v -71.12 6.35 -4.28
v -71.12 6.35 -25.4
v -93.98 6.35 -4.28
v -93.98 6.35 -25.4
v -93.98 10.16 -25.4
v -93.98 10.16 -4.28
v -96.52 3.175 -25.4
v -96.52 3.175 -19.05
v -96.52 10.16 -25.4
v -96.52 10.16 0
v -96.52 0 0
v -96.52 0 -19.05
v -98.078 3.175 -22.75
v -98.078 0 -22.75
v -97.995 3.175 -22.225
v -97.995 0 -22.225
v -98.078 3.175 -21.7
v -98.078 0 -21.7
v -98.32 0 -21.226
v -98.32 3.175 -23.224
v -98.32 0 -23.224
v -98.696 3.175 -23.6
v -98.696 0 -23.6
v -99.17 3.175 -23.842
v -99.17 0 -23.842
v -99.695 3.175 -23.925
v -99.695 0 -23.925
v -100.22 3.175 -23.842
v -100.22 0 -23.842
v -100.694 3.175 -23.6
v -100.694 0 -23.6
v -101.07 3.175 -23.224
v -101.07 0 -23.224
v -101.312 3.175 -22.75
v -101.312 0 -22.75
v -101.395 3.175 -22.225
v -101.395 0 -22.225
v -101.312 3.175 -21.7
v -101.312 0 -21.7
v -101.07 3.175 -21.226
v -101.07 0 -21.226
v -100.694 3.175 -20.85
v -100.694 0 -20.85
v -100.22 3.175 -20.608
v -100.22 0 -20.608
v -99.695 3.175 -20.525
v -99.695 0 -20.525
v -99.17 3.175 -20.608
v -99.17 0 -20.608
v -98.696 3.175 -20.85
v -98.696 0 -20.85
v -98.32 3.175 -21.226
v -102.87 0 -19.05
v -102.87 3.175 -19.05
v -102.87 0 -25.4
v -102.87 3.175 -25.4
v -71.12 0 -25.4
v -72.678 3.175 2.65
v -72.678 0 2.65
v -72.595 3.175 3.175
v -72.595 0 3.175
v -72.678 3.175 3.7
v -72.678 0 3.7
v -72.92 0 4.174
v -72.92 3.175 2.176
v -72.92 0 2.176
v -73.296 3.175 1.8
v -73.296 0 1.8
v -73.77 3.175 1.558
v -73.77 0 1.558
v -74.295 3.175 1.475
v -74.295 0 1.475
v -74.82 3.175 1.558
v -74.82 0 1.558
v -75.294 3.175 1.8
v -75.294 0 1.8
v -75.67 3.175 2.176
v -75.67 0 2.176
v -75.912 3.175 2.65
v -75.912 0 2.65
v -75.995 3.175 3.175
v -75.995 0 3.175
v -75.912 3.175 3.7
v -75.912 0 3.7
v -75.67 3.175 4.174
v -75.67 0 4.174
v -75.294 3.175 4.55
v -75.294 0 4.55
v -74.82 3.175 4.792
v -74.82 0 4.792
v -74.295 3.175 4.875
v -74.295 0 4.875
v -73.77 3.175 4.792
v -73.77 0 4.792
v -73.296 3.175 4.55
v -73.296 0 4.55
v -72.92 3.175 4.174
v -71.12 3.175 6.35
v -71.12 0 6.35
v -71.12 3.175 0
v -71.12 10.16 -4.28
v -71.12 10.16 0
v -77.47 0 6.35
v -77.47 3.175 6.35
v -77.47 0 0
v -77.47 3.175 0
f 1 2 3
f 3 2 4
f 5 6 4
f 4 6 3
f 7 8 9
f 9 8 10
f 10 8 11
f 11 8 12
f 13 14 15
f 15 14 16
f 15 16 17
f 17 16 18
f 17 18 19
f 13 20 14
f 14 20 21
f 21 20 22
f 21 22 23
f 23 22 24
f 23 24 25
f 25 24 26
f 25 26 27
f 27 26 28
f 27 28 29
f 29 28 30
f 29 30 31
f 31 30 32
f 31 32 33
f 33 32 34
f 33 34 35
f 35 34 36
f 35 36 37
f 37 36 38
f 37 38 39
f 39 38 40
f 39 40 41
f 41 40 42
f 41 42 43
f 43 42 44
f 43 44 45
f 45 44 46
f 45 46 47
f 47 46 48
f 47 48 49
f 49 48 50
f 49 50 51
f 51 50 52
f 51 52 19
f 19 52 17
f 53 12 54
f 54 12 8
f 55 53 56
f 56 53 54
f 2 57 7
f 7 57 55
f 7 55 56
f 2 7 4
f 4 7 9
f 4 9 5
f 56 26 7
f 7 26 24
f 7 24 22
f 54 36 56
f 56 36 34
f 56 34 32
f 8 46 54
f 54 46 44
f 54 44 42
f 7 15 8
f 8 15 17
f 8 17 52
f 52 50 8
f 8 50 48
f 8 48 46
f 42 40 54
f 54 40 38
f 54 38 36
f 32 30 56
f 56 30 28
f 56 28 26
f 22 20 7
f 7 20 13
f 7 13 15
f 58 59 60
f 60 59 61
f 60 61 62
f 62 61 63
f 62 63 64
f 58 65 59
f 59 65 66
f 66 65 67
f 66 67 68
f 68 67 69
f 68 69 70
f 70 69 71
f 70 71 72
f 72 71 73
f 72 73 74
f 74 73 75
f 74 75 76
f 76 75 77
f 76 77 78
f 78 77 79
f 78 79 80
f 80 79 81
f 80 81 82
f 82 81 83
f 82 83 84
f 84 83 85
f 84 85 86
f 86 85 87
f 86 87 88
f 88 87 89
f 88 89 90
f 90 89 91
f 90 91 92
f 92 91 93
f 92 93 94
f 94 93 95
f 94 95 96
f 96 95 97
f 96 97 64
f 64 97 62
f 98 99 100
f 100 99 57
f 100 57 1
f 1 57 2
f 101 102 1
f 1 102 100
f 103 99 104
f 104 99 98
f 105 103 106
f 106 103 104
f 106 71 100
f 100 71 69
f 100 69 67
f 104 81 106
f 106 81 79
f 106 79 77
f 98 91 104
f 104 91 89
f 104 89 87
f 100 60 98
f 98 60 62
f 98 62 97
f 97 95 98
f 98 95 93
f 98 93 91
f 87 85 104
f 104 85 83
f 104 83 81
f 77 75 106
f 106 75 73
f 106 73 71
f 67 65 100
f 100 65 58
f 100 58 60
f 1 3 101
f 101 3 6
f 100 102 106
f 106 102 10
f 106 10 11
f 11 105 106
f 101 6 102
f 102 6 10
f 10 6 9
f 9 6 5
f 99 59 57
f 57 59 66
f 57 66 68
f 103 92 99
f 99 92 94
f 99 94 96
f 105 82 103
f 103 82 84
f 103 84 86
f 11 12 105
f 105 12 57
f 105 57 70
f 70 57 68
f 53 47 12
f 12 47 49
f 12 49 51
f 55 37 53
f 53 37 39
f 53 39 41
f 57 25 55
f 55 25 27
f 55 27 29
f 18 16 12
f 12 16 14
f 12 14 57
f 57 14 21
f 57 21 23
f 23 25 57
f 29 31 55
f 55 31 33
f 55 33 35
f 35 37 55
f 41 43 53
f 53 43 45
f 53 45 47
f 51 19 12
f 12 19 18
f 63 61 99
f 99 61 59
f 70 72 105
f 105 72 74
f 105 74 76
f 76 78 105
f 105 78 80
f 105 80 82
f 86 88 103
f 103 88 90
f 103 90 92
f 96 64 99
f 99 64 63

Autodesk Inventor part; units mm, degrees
ref_plane "YZ Plane" through (0, 0, 0) normal (1, 0, 0) x (0, 1, 0)
ref_plane "XZ Plane" through (0, 0, 0) normal (0, 1, 0) x (-1, 0, 0)
ref_plane "XY Plane" through (0, 0, 0) normal (0, 0, 1) x (1, 0, 0)
sketch "Sketch1" plane through (0, 0, 0) normal (0, 1, 0) x (-1, 0, 0)
  line L0 (0, 0) -> (96.52, 0)
  line L1 (96.52, 0) -> (96.52, -112.7)
  line L2 (96.52, -112.7) -> (0, -112.7)
  line L3 (0, -112.7) -> (0, 0)
  dimension "d0" = 96.52
  dimension "d1" = 112.7
extrude "Extrusion1" add sketch "Sketch1" along normal blind 10.16
sketch "Sketch2" plane through (0, 10.16, 0) normal (0, 1, 0) x (1, 0, 0)
  line L0 (-96.52, 112.7) -> (-96.52, 0) construction
  line L1 (0, 0) -> (0, 112.7) construction
  line L2 (-96.52, 0) -> (0, 112.7) construction
  line L3 (0, 112.7) -> (-96.52, 112.7) construction
  line L4 (-96.52, 112.7) -> (0, 0) construction
  line L5 (-93.98, 4.28) -> (-2.54, 4.28)
  line L6 (-2.54, 4.28) -> (-2.54, 108.42)
  line L7 (-2.54, 108.42) -> (-93.98, 108.42)
  line L8 (-93.98, 108.42) -> (-93.98, 4.28)
  line L9 (-93.98, 4.28) -> (-2.54, 108.42) construction
  line L10 (-2.54, 4.28) -> (-93.98, 108.42) construction
  point P0 (-48.26, 56.35)
  dimension "d4" = 91.44
  dimension "d5" = 104.14
extrude "Jetson Cavity" cut sketch "Sketch2" against normal blind 3.81
sketch "Sketch3" plane through (0, 0, 0) normal (0, -1, 0) x (1, 0, 0)
  line L0 (0, -19.05) -> (6.35, -19.05)
  line L1 (6.35, -19.05) -> (6.35, -25.4)
  line L2 (6.35, -25.4) -> (0, -25.4)
  circle A0 centre (3.175, -22.225) radius 1.7
  line L3 (6.35, -25.4) -> (0, -19.05) construction
  line L4 (6.35, -19.05) -> (0, -25.4) construction
  line L5 (0, 0) -> (0, -112.7) construction
  line L6 (0, -56.35) -> (-96.52, -56.35) construction
  line L7 (-96.52, -112.7) -> (-96.52, 0) construction
  line L8 (0, -112.7) -> (-96.52, -112.7) construction
  line L9 (-48.26, -112.7) -> (-48.26, 0) construction
  line L10 (-96.52, 0) -> (0, 0) construction
  line L11 (-96.52, 0) -> (-96.52, -112.7) construction
  line L12 (0, 0) -> (27.0549, 0) construction
  line L13 (0, -19.05) -> (0, -25.4)
  line L14 (-96.52, -19.05) -> (-102.87, -19.05)
  line L15 (-102.87, -19.05) -> (-102.87, -25.4)
  line L16 (-102.87, -25.4) -> (-96.52, -25.4)
  circle A1 centre (-99.695, -22.225) radius 1.7
  line L17 (-102.87, -25.4) -> (-96.52, -19.05) construction
  line L18 (-102.87, -19.05) -> (-96.52, -25.4) construction
  line L19 (-96.52, 0) -> (-96.52, -112.7) construction
  line L20 (-96.52, -19.05) -> (-96.52, -25.4)
  line L21 (0, -93.65) -> (6.35, -93.65)
  line L22 (6.35, -93.65) -> (6.35, -87.3)
  line L23 (6.35, -87.3) -> (0, -87.3)
  circle A2 centre (3.175, -90.475) radius 1.7
  line L24 (6.35, -87.3) -> (0, -93.65) construction
  line L25 (6.35, -93.65) -> (0, -87.3) construction
  line L26 (0, -112.7) -> (0, 0) construction
  line L27 (0, -93.65) -> (0, -87.3)
  line L28 (-96.52, -93.65) -> (-96.52, -87.3)
  circle A3 centre (-99.695, -90.475) radius 1.7
  line L29 (-102.87, -87.3) -> (-96.52, -93.65) construction
  line L30 (-102.87, -93.65) -> (-102.87, -87.3)
  line L31 (-102.87, -87.3) -> (-96.52, -87.3)
  line L32 (-102.87, -93.65) -> (-96.52, -87.3) construction
  line L33 (-96.52, -93.65) -> (-102.87, -93.65)
  line L34 (-77.47, 6.35) -> (-71.12, 6.35)
  line L35 (-71.12, 6.35) -> (-71.12, 0)
  line L36 (-71.12, 0) -> (-77.47, 0)
  line L37 (-77.47, 0) -> (-77.47, 6.35)
  line L38 (-77.47, 6.35) -> (-71.12, 0) construction
  line L39 (-71.12, 6.35) -> (-77.47, 0) construction
  circle A4 centre (-74.295, 3.175) radius 1.7
  line L40 (-96.52, 0) -> (-96.52, 26.4088) construction
  line L41 (-19.05, 6.35) -> (-25.4, 6.35)
  line L42 (-25.4, 6.35) -> (-25.4, 0)
  line L43 (-25.4, 0) -> (-19.05, 0)
  line L44 (-19.05, 0) -> (-19.05, 6.35)
  line L45 (-19.05, 6.35) -> (-25.4, 0) construction
  line L46 (-25.4, 6.35) -> (-19.05, 0) construction
  circle A5 centre (-22.225, 3.175) radius 1.7
  line L47 (-77.47, -119.05) -> (-71.12, -119.05)
  line L48 (-71.12, -119.05) -> (-71.12, -112.7)
  line L49 (-71.12, -112.7) -> (-77.47, -112.7)
  line L50 (-77.47, -112.7) -> (-77.47, -119.05)
  line L51 (-77.47, -119.05) -> (-71.12, -112.7) construction
  line L52 (-71.12, -119.05) -> (-77.47, -112.7) construction
  circle A6 centre (-74.295, -115.875) radius 1.7
  line L53 (-25.4, -112.7) -> (-19.05, -112.7)
  line L54 (-25.4, -119.05) -> (-25.4, -112.7)
  circle A7 centre (-22.225, -115.875) radius 1.7
  line L55 (-19.05, -112.7) -> (-19.05, -119.05)
  line L56 (-19.05, -119.05) -> (-25.4, -112.7) construction
  line L57 (-25.4, -119.05) -> (-19.05, -112.7) construction
  line L58 (-19.05, -119.05) -> (-25.4, -119.05)
  point P0 (-77.47, 3.175)
  point P1 (-19.05, 3.175)
  point P2 (-77.47, -115.875)
  point P3 (-19.05, -115.875)
  dimension "d10" = 3.4
  dimension "d28" = 6.35
  dimension "d29" = 6.35
  dimension "d30" = 19.05
  dimension "d31" = 6.35
  dimension "d32" = 6.35
  dimension "d33" = 3.4
  dimension "d34" = 19.05
extrude "Screws" add sketch "Sketch3" against normal blind 3.175
sketch "Sketch5" plane through (0, 0, 0) normal (0, -1, 0) x (1, 0, 0)
  line L0 (-102.87, 6.35) -> (-71.12, 6.35)
  line L1 (-71.12, 6.35) -> (-71.12, -25.4)
  line L2 (-71.12, -25.4) -> (-102.87, -25.4)
  line L3 (-102.87, -25.4) -> (-102.87, 6.35)
  line L4 (-71.12, 6.35) -> (-77.47, 6.35) projected
  line L5 (-102.87, -19.05) -> (-102.87, -25.4) projected
  line L6 (-96.52, -19.05) -> (-96.52, 0) projected
  line L7 (-96.52, 0) -> (-77.47, 0) projected
  line L8 (-102.87, 6.35) -> (6.35, 6.35)
  line L9 (6.35, 6.35) -> (6.35, -119.05)
  line L10 (6.35, -119.05) -> (-102.87, -119.05)
  line L11 (-102.87, -119.05) -> (-102.87, 6.35)
  line L12 (6.35, -93.65) -> (6.35, -87.3) projected
  line L13 (-25.4, -119.05) -> (-19.05, -119.05) projected
  dimension "d35" = 25.4
  dimension "d36" = 25.4
extrude "Extrusion5" cut sketch "Sketch5" against normal through all contours L8 L9 L10 L11 L2 L1
equation "\"d10\" = m3_clearance"
equation "\"d33\" = m3_clearance"
equation "\"m3_heat_set_insert\" = 4"
equation "\"m3_clearance\" = 3.4"
equation "\"m3_heat_set_depth\" = 7"
equation "\"robot_diameter\" = 354"
equation "\"hardboard_thickness\" = 5"
properties part number "jetson_orin_nano_holder_corner_2"
